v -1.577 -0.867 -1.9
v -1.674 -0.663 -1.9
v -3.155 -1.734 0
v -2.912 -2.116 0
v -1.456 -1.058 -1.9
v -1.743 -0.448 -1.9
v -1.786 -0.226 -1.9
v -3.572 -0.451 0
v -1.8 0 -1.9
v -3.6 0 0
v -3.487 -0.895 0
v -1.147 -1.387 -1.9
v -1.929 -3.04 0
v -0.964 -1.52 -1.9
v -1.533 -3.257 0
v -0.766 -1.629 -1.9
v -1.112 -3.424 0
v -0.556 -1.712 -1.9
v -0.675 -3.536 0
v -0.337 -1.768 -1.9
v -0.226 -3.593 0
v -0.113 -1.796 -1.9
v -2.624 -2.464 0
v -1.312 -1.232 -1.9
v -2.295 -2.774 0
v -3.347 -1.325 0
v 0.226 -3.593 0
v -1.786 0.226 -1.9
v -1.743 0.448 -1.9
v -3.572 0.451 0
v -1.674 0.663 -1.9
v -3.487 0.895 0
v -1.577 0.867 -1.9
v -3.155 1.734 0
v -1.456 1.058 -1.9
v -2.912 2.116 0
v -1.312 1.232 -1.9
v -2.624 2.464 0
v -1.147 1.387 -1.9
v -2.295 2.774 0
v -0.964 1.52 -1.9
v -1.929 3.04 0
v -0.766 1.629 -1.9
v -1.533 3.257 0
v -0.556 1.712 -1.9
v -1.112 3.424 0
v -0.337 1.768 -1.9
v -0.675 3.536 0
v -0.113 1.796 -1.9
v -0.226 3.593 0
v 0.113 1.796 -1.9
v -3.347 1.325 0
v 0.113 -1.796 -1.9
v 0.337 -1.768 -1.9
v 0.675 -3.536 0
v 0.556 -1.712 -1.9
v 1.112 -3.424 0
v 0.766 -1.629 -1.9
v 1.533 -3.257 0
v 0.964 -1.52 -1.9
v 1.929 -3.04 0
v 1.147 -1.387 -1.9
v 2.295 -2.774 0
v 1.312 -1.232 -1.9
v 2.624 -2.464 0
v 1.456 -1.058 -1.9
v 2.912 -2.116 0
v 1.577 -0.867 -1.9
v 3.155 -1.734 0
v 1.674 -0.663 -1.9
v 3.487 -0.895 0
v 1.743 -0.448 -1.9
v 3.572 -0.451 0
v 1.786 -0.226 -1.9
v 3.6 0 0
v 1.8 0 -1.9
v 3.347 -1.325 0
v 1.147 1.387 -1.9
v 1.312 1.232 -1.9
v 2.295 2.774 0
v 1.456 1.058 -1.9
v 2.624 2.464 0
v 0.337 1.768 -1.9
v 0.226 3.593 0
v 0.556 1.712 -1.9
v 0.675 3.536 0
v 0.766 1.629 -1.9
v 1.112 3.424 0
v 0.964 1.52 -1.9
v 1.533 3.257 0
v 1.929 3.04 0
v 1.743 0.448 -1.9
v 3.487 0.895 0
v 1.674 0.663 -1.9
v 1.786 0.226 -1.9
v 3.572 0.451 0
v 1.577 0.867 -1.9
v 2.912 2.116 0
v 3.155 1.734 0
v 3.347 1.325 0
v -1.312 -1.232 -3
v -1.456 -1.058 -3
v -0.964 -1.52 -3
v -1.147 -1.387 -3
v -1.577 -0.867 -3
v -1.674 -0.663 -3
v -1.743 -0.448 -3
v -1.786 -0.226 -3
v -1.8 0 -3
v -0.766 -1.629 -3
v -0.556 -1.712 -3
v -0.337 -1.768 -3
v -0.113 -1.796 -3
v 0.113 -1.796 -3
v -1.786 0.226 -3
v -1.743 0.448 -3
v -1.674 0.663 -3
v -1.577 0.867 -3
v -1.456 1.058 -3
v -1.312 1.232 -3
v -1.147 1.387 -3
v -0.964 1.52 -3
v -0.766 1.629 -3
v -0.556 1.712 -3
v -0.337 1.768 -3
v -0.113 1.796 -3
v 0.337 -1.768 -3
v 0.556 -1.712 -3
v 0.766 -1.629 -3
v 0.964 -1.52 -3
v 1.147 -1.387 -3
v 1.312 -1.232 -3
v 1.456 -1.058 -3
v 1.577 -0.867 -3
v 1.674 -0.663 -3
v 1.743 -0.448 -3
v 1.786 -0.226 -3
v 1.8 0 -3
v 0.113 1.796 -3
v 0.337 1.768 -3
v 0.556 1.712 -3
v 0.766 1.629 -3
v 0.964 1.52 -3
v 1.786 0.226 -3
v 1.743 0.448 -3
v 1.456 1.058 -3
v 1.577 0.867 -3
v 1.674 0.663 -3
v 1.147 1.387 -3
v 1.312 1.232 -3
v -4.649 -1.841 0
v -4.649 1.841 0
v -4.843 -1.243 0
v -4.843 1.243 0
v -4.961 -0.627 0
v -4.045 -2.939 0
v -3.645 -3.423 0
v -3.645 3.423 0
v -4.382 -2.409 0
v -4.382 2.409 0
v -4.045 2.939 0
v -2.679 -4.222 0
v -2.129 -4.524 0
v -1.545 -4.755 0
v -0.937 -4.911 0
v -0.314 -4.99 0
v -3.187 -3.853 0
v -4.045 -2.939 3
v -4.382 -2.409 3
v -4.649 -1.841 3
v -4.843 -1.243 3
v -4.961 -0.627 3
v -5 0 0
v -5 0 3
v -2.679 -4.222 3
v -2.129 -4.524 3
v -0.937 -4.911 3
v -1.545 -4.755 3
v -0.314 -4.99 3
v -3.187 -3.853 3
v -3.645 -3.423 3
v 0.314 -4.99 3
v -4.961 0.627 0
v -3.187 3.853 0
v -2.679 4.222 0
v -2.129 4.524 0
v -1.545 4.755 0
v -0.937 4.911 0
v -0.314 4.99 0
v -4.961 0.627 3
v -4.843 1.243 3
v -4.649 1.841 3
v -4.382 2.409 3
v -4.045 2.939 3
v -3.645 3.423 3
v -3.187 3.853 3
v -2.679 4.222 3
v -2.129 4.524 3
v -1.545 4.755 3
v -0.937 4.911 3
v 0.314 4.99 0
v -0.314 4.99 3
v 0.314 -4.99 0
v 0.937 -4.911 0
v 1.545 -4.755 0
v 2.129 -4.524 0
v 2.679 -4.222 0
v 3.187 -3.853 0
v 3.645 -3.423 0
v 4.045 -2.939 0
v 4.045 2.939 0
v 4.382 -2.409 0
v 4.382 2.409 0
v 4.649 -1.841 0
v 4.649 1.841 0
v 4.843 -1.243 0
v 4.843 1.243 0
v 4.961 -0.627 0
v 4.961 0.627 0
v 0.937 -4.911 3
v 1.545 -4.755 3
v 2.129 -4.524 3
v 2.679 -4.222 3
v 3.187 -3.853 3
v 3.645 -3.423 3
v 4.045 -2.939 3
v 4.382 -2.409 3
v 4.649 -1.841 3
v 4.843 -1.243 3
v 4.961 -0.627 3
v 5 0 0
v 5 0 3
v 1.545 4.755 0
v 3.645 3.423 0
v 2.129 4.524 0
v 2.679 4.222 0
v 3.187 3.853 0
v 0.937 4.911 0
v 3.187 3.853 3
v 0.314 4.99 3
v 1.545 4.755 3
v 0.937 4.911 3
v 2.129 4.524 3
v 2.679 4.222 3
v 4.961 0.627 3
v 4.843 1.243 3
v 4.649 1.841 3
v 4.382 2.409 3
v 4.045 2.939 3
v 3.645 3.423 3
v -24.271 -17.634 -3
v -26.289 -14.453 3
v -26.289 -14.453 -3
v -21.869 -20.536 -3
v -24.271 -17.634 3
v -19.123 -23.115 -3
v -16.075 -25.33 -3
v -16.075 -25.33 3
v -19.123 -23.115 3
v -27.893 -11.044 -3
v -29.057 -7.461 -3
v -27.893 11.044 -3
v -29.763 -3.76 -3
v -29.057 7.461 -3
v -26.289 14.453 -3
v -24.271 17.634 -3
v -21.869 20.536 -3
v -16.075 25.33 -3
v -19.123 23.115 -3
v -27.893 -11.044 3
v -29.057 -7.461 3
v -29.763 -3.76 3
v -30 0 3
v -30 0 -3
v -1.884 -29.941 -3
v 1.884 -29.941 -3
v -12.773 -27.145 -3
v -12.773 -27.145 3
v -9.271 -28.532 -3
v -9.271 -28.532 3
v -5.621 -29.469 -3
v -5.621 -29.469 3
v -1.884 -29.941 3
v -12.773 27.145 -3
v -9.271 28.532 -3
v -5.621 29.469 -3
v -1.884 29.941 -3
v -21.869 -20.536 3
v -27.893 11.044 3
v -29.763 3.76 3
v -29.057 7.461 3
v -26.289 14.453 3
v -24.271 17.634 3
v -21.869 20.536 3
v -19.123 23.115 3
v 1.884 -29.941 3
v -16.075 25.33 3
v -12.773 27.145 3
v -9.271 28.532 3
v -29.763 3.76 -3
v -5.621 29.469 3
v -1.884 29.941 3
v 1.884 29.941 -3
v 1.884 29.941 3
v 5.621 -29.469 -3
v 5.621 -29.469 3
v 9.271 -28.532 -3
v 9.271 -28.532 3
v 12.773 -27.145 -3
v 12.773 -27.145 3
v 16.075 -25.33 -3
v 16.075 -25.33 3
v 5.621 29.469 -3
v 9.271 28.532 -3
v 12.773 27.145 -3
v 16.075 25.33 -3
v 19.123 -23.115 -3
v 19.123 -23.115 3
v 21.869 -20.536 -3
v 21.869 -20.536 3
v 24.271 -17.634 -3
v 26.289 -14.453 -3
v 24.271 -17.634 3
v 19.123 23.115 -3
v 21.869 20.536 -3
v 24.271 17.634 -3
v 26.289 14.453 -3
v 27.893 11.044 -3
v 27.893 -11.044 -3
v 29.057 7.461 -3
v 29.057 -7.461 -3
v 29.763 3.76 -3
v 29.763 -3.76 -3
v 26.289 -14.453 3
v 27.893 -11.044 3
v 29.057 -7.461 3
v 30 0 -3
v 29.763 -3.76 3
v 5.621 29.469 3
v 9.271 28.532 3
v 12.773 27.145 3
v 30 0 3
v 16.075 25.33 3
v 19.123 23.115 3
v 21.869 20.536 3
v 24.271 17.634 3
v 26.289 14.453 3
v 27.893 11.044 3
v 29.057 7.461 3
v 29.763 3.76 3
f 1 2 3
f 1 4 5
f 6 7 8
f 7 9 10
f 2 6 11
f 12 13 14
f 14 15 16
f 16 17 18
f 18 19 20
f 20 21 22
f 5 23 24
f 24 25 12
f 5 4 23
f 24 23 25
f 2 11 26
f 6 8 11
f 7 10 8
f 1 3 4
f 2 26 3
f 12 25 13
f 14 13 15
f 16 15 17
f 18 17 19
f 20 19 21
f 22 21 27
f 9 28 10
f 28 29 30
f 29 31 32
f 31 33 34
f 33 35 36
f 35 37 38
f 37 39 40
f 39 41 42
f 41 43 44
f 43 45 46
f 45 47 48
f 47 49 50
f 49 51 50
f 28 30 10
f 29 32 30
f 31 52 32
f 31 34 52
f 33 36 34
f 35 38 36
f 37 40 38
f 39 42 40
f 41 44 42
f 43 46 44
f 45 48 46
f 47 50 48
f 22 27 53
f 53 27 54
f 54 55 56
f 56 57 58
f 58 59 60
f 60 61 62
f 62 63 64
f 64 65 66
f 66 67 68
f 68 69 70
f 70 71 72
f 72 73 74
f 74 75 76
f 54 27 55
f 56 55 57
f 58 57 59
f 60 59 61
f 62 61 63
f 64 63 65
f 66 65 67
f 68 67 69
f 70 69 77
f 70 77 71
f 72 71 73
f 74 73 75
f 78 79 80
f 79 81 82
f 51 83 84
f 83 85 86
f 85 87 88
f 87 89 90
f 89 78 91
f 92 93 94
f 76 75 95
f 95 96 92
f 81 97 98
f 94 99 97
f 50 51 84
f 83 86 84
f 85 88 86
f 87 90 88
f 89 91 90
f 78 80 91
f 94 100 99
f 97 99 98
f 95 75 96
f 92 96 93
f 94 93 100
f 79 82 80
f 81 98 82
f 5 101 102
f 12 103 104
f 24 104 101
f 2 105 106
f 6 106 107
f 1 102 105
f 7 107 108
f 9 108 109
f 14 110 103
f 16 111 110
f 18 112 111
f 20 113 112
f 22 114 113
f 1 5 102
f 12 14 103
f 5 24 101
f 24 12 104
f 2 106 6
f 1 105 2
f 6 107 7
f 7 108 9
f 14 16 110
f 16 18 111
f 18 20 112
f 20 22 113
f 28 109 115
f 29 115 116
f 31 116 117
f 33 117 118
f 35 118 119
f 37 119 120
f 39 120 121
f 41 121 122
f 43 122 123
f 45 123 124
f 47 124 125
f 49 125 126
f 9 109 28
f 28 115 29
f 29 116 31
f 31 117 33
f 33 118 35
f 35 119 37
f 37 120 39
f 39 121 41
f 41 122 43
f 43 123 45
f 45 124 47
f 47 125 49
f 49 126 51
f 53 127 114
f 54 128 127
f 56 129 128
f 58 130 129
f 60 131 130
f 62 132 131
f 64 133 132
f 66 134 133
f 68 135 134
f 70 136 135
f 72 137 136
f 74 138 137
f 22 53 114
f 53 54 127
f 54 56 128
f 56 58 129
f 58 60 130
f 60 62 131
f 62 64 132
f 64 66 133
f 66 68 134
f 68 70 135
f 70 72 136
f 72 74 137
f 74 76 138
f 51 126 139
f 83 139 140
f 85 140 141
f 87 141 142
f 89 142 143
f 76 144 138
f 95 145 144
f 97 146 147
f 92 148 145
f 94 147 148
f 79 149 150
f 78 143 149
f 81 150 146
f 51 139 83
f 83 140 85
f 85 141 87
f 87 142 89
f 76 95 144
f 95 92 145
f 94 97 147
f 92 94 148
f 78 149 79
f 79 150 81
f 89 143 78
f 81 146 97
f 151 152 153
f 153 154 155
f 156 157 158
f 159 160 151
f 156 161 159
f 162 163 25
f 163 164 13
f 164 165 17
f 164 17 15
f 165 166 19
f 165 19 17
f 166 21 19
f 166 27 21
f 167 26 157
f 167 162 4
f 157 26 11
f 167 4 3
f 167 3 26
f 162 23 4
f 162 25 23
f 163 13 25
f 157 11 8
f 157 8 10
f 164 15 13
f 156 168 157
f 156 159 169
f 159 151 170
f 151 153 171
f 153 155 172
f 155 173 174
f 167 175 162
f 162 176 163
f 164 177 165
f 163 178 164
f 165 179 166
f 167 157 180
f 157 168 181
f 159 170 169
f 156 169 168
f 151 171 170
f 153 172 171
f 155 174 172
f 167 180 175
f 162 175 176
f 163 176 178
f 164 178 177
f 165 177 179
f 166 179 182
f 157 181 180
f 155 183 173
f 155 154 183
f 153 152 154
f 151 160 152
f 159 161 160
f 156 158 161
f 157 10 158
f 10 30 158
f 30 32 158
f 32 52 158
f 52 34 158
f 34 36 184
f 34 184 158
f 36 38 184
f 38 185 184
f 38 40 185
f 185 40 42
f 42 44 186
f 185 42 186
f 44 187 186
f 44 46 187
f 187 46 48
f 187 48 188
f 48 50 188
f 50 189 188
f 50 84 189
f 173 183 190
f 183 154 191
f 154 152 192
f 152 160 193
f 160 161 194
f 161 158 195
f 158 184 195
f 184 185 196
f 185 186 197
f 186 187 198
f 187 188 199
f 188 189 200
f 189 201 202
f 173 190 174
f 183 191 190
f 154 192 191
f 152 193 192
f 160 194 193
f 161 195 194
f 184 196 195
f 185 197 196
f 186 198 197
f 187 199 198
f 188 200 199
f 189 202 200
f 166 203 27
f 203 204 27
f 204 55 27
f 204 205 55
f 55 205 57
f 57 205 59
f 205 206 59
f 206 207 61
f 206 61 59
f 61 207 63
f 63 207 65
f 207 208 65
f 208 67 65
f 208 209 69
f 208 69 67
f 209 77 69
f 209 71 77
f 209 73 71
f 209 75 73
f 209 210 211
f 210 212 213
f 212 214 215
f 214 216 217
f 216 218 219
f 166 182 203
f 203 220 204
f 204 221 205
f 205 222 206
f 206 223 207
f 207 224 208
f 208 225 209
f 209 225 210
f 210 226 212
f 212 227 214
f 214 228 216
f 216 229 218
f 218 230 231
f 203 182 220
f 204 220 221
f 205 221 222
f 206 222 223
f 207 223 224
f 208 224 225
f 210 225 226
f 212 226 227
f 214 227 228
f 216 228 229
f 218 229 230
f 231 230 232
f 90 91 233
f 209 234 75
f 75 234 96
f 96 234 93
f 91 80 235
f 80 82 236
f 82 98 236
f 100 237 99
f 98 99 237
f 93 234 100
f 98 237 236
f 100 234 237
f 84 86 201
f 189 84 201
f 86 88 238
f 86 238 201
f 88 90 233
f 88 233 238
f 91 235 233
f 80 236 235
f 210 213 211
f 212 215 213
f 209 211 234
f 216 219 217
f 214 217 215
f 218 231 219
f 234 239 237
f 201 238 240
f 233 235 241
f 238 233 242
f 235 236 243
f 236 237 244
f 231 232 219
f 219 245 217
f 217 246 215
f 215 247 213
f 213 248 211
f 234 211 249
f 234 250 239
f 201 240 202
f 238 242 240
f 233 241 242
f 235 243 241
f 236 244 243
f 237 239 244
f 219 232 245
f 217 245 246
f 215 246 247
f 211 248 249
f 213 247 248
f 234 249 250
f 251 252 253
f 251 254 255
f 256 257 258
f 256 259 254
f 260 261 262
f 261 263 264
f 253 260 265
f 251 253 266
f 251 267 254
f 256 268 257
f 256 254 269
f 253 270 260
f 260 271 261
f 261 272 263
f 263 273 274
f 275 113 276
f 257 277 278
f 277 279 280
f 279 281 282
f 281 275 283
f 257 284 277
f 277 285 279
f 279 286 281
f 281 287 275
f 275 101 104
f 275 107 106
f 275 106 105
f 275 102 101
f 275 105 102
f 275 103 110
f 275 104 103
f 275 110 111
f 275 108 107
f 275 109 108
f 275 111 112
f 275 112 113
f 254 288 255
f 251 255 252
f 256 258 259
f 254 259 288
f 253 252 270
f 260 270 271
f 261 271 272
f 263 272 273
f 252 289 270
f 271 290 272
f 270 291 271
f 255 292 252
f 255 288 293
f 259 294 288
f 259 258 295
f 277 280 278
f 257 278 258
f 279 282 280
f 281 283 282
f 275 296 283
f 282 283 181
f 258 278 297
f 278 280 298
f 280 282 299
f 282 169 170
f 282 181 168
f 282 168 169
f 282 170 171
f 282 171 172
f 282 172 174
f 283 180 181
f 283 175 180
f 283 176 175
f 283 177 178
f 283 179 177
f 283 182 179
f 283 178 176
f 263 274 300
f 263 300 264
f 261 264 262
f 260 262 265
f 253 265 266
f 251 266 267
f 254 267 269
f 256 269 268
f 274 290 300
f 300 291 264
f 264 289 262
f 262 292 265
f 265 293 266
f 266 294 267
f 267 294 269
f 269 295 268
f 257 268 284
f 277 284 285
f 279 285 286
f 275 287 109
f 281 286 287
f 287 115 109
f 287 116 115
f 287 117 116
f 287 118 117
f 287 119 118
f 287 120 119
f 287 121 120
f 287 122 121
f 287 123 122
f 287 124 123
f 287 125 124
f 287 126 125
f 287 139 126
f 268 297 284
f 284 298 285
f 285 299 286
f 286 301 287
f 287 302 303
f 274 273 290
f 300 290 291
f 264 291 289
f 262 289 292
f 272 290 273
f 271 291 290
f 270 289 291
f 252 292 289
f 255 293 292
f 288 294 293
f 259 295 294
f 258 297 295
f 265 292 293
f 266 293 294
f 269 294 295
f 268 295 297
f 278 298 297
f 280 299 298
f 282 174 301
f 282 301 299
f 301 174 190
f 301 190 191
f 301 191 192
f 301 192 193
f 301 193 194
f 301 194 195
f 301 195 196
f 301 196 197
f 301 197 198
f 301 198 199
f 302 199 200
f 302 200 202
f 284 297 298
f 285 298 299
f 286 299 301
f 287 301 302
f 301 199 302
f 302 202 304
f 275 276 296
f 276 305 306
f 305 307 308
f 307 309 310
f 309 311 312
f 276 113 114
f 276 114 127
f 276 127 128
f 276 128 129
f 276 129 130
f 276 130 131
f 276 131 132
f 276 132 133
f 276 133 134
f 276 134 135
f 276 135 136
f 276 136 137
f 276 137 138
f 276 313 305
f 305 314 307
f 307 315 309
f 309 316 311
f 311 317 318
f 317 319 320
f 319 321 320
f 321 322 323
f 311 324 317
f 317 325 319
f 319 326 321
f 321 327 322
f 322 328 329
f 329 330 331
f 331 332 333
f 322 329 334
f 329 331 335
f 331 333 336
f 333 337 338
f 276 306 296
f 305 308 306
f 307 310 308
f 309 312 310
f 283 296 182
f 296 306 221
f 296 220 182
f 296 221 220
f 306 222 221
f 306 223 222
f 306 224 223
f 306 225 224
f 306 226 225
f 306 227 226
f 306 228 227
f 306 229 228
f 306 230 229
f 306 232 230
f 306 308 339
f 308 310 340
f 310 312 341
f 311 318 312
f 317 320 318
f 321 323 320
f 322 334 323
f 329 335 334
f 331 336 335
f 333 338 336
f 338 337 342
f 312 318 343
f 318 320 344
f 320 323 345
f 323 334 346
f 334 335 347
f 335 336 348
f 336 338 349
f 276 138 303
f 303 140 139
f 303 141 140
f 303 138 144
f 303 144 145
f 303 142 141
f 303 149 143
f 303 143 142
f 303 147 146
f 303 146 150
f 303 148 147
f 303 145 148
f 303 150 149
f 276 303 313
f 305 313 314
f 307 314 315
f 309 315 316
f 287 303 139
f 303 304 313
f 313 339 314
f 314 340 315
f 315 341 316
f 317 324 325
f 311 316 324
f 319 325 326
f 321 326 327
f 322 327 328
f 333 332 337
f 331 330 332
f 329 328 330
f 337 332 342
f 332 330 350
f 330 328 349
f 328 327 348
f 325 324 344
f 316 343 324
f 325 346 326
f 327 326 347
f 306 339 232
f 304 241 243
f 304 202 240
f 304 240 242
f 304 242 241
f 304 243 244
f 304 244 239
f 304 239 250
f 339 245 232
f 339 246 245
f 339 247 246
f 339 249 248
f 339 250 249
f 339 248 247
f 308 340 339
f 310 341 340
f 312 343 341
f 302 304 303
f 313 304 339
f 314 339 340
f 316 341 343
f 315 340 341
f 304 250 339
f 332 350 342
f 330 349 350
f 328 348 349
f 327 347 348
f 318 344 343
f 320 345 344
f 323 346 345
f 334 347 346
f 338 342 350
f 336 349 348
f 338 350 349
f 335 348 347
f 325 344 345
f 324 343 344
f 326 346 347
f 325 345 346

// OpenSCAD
$fn = 50;


difference() {
	union() {
		translate(v = [0, 0, -3.0000000000]) {
			cylinder(h = 6, r = 30.0000000000);
		}
	}
	union() {
		translate(v = [0, 0, 0]) {
			rotate(a = [0, 0, 0]) {
				difference() {
					union() {
						translate(v = [0, 0, -6.0000000000]) {
							cylinder(h = 6, r = 1.5000000000);
						}
						translate(v = [0, 0, -1.9000000000]) {
							cylinder(h = 1.9000000000, r1 = 1.8000000000, r2 = 3.6000000000);
						}
						translate(v = [0, 0, -6.0000000000]) {
							cylinder(h = 6, r = 1.8000000000);
						}
						translate(v = [0, 0, -6.0000000000]) {
							cylinder(h = 6, r = 1.5000000000);
						}
					}
					union();
				}
			}
		}
		#cylinder(h = 3, r = 5.0000000000);
	}
}
